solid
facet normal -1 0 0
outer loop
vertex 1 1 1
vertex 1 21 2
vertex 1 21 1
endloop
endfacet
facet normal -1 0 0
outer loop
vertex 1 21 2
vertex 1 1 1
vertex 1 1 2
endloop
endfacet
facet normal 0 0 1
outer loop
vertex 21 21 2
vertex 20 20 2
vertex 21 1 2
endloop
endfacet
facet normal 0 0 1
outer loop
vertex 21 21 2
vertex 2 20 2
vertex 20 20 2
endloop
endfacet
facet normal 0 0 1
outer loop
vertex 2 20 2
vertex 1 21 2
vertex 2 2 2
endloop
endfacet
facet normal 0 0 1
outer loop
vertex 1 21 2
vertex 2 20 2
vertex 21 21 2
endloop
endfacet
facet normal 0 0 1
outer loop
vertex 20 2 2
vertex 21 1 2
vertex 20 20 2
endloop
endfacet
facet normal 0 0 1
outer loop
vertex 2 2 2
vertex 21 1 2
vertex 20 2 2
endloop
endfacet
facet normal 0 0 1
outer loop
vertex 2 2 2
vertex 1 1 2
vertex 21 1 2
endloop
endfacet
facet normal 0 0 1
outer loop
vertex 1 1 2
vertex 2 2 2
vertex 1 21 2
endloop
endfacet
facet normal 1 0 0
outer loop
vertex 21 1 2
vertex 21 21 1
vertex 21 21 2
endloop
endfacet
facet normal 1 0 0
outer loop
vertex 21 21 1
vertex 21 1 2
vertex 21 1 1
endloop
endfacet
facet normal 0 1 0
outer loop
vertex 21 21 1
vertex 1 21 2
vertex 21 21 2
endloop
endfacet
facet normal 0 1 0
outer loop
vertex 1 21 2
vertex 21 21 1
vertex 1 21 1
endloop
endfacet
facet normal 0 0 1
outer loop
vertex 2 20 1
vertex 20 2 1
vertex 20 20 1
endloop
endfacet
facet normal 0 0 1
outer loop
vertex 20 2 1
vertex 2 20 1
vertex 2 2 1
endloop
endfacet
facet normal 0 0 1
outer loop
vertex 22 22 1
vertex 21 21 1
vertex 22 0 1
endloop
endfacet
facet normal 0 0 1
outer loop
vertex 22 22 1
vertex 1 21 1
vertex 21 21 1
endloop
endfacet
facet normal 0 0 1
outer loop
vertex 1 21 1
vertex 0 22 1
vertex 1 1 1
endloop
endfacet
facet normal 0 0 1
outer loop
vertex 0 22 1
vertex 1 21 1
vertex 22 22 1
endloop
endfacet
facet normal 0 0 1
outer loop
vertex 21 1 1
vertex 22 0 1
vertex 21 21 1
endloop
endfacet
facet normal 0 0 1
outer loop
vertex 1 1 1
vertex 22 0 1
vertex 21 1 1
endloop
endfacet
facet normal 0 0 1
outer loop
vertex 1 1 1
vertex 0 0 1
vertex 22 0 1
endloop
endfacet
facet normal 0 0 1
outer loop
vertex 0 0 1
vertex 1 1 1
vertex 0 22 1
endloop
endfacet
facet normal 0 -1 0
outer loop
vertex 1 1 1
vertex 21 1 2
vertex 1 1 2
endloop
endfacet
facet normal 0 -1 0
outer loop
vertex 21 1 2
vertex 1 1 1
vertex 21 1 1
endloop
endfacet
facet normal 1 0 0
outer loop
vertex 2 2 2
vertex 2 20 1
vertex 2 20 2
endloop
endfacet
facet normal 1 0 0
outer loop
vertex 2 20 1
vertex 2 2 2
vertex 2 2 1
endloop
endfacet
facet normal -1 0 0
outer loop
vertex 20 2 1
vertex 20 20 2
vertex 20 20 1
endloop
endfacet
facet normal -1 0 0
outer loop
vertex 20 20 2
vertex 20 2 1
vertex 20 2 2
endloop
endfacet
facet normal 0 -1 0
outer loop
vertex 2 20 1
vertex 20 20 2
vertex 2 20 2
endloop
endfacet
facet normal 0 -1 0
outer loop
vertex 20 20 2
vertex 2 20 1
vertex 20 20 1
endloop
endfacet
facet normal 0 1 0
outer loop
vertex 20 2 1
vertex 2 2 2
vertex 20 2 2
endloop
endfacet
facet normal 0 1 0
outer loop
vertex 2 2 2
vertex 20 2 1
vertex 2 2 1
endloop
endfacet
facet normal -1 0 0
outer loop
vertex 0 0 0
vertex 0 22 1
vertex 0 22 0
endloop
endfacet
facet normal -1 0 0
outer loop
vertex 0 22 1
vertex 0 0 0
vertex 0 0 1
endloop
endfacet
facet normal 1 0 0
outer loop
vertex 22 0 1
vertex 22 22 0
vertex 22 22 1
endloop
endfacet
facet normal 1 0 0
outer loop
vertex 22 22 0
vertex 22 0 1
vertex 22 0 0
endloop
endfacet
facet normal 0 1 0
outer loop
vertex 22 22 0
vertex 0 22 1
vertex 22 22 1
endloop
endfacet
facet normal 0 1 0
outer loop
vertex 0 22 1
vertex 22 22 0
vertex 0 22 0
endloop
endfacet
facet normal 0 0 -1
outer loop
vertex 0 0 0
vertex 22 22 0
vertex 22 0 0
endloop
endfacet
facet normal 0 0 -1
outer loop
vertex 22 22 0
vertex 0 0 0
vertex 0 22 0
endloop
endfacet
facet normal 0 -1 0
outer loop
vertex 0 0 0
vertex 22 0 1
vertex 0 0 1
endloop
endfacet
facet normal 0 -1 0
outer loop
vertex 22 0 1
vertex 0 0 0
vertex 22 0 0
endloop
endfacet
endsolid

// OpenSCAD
thickness=1;
width=20;
length=20;
height=9;
connector_hole_width=10;
sensor_height=3;
sensor_width=7;


    cube([width + 2 * thickness, length + 2 * thickness, thickness]);
difference() {
    translate([thickness, thickness, thickness]) cube([width, length, thickness]);
    translate([2 * thickness, 2 * thickness, thickness]) cube([width - 2 * thickness, length - 2 * thickness, thickness]);
}
